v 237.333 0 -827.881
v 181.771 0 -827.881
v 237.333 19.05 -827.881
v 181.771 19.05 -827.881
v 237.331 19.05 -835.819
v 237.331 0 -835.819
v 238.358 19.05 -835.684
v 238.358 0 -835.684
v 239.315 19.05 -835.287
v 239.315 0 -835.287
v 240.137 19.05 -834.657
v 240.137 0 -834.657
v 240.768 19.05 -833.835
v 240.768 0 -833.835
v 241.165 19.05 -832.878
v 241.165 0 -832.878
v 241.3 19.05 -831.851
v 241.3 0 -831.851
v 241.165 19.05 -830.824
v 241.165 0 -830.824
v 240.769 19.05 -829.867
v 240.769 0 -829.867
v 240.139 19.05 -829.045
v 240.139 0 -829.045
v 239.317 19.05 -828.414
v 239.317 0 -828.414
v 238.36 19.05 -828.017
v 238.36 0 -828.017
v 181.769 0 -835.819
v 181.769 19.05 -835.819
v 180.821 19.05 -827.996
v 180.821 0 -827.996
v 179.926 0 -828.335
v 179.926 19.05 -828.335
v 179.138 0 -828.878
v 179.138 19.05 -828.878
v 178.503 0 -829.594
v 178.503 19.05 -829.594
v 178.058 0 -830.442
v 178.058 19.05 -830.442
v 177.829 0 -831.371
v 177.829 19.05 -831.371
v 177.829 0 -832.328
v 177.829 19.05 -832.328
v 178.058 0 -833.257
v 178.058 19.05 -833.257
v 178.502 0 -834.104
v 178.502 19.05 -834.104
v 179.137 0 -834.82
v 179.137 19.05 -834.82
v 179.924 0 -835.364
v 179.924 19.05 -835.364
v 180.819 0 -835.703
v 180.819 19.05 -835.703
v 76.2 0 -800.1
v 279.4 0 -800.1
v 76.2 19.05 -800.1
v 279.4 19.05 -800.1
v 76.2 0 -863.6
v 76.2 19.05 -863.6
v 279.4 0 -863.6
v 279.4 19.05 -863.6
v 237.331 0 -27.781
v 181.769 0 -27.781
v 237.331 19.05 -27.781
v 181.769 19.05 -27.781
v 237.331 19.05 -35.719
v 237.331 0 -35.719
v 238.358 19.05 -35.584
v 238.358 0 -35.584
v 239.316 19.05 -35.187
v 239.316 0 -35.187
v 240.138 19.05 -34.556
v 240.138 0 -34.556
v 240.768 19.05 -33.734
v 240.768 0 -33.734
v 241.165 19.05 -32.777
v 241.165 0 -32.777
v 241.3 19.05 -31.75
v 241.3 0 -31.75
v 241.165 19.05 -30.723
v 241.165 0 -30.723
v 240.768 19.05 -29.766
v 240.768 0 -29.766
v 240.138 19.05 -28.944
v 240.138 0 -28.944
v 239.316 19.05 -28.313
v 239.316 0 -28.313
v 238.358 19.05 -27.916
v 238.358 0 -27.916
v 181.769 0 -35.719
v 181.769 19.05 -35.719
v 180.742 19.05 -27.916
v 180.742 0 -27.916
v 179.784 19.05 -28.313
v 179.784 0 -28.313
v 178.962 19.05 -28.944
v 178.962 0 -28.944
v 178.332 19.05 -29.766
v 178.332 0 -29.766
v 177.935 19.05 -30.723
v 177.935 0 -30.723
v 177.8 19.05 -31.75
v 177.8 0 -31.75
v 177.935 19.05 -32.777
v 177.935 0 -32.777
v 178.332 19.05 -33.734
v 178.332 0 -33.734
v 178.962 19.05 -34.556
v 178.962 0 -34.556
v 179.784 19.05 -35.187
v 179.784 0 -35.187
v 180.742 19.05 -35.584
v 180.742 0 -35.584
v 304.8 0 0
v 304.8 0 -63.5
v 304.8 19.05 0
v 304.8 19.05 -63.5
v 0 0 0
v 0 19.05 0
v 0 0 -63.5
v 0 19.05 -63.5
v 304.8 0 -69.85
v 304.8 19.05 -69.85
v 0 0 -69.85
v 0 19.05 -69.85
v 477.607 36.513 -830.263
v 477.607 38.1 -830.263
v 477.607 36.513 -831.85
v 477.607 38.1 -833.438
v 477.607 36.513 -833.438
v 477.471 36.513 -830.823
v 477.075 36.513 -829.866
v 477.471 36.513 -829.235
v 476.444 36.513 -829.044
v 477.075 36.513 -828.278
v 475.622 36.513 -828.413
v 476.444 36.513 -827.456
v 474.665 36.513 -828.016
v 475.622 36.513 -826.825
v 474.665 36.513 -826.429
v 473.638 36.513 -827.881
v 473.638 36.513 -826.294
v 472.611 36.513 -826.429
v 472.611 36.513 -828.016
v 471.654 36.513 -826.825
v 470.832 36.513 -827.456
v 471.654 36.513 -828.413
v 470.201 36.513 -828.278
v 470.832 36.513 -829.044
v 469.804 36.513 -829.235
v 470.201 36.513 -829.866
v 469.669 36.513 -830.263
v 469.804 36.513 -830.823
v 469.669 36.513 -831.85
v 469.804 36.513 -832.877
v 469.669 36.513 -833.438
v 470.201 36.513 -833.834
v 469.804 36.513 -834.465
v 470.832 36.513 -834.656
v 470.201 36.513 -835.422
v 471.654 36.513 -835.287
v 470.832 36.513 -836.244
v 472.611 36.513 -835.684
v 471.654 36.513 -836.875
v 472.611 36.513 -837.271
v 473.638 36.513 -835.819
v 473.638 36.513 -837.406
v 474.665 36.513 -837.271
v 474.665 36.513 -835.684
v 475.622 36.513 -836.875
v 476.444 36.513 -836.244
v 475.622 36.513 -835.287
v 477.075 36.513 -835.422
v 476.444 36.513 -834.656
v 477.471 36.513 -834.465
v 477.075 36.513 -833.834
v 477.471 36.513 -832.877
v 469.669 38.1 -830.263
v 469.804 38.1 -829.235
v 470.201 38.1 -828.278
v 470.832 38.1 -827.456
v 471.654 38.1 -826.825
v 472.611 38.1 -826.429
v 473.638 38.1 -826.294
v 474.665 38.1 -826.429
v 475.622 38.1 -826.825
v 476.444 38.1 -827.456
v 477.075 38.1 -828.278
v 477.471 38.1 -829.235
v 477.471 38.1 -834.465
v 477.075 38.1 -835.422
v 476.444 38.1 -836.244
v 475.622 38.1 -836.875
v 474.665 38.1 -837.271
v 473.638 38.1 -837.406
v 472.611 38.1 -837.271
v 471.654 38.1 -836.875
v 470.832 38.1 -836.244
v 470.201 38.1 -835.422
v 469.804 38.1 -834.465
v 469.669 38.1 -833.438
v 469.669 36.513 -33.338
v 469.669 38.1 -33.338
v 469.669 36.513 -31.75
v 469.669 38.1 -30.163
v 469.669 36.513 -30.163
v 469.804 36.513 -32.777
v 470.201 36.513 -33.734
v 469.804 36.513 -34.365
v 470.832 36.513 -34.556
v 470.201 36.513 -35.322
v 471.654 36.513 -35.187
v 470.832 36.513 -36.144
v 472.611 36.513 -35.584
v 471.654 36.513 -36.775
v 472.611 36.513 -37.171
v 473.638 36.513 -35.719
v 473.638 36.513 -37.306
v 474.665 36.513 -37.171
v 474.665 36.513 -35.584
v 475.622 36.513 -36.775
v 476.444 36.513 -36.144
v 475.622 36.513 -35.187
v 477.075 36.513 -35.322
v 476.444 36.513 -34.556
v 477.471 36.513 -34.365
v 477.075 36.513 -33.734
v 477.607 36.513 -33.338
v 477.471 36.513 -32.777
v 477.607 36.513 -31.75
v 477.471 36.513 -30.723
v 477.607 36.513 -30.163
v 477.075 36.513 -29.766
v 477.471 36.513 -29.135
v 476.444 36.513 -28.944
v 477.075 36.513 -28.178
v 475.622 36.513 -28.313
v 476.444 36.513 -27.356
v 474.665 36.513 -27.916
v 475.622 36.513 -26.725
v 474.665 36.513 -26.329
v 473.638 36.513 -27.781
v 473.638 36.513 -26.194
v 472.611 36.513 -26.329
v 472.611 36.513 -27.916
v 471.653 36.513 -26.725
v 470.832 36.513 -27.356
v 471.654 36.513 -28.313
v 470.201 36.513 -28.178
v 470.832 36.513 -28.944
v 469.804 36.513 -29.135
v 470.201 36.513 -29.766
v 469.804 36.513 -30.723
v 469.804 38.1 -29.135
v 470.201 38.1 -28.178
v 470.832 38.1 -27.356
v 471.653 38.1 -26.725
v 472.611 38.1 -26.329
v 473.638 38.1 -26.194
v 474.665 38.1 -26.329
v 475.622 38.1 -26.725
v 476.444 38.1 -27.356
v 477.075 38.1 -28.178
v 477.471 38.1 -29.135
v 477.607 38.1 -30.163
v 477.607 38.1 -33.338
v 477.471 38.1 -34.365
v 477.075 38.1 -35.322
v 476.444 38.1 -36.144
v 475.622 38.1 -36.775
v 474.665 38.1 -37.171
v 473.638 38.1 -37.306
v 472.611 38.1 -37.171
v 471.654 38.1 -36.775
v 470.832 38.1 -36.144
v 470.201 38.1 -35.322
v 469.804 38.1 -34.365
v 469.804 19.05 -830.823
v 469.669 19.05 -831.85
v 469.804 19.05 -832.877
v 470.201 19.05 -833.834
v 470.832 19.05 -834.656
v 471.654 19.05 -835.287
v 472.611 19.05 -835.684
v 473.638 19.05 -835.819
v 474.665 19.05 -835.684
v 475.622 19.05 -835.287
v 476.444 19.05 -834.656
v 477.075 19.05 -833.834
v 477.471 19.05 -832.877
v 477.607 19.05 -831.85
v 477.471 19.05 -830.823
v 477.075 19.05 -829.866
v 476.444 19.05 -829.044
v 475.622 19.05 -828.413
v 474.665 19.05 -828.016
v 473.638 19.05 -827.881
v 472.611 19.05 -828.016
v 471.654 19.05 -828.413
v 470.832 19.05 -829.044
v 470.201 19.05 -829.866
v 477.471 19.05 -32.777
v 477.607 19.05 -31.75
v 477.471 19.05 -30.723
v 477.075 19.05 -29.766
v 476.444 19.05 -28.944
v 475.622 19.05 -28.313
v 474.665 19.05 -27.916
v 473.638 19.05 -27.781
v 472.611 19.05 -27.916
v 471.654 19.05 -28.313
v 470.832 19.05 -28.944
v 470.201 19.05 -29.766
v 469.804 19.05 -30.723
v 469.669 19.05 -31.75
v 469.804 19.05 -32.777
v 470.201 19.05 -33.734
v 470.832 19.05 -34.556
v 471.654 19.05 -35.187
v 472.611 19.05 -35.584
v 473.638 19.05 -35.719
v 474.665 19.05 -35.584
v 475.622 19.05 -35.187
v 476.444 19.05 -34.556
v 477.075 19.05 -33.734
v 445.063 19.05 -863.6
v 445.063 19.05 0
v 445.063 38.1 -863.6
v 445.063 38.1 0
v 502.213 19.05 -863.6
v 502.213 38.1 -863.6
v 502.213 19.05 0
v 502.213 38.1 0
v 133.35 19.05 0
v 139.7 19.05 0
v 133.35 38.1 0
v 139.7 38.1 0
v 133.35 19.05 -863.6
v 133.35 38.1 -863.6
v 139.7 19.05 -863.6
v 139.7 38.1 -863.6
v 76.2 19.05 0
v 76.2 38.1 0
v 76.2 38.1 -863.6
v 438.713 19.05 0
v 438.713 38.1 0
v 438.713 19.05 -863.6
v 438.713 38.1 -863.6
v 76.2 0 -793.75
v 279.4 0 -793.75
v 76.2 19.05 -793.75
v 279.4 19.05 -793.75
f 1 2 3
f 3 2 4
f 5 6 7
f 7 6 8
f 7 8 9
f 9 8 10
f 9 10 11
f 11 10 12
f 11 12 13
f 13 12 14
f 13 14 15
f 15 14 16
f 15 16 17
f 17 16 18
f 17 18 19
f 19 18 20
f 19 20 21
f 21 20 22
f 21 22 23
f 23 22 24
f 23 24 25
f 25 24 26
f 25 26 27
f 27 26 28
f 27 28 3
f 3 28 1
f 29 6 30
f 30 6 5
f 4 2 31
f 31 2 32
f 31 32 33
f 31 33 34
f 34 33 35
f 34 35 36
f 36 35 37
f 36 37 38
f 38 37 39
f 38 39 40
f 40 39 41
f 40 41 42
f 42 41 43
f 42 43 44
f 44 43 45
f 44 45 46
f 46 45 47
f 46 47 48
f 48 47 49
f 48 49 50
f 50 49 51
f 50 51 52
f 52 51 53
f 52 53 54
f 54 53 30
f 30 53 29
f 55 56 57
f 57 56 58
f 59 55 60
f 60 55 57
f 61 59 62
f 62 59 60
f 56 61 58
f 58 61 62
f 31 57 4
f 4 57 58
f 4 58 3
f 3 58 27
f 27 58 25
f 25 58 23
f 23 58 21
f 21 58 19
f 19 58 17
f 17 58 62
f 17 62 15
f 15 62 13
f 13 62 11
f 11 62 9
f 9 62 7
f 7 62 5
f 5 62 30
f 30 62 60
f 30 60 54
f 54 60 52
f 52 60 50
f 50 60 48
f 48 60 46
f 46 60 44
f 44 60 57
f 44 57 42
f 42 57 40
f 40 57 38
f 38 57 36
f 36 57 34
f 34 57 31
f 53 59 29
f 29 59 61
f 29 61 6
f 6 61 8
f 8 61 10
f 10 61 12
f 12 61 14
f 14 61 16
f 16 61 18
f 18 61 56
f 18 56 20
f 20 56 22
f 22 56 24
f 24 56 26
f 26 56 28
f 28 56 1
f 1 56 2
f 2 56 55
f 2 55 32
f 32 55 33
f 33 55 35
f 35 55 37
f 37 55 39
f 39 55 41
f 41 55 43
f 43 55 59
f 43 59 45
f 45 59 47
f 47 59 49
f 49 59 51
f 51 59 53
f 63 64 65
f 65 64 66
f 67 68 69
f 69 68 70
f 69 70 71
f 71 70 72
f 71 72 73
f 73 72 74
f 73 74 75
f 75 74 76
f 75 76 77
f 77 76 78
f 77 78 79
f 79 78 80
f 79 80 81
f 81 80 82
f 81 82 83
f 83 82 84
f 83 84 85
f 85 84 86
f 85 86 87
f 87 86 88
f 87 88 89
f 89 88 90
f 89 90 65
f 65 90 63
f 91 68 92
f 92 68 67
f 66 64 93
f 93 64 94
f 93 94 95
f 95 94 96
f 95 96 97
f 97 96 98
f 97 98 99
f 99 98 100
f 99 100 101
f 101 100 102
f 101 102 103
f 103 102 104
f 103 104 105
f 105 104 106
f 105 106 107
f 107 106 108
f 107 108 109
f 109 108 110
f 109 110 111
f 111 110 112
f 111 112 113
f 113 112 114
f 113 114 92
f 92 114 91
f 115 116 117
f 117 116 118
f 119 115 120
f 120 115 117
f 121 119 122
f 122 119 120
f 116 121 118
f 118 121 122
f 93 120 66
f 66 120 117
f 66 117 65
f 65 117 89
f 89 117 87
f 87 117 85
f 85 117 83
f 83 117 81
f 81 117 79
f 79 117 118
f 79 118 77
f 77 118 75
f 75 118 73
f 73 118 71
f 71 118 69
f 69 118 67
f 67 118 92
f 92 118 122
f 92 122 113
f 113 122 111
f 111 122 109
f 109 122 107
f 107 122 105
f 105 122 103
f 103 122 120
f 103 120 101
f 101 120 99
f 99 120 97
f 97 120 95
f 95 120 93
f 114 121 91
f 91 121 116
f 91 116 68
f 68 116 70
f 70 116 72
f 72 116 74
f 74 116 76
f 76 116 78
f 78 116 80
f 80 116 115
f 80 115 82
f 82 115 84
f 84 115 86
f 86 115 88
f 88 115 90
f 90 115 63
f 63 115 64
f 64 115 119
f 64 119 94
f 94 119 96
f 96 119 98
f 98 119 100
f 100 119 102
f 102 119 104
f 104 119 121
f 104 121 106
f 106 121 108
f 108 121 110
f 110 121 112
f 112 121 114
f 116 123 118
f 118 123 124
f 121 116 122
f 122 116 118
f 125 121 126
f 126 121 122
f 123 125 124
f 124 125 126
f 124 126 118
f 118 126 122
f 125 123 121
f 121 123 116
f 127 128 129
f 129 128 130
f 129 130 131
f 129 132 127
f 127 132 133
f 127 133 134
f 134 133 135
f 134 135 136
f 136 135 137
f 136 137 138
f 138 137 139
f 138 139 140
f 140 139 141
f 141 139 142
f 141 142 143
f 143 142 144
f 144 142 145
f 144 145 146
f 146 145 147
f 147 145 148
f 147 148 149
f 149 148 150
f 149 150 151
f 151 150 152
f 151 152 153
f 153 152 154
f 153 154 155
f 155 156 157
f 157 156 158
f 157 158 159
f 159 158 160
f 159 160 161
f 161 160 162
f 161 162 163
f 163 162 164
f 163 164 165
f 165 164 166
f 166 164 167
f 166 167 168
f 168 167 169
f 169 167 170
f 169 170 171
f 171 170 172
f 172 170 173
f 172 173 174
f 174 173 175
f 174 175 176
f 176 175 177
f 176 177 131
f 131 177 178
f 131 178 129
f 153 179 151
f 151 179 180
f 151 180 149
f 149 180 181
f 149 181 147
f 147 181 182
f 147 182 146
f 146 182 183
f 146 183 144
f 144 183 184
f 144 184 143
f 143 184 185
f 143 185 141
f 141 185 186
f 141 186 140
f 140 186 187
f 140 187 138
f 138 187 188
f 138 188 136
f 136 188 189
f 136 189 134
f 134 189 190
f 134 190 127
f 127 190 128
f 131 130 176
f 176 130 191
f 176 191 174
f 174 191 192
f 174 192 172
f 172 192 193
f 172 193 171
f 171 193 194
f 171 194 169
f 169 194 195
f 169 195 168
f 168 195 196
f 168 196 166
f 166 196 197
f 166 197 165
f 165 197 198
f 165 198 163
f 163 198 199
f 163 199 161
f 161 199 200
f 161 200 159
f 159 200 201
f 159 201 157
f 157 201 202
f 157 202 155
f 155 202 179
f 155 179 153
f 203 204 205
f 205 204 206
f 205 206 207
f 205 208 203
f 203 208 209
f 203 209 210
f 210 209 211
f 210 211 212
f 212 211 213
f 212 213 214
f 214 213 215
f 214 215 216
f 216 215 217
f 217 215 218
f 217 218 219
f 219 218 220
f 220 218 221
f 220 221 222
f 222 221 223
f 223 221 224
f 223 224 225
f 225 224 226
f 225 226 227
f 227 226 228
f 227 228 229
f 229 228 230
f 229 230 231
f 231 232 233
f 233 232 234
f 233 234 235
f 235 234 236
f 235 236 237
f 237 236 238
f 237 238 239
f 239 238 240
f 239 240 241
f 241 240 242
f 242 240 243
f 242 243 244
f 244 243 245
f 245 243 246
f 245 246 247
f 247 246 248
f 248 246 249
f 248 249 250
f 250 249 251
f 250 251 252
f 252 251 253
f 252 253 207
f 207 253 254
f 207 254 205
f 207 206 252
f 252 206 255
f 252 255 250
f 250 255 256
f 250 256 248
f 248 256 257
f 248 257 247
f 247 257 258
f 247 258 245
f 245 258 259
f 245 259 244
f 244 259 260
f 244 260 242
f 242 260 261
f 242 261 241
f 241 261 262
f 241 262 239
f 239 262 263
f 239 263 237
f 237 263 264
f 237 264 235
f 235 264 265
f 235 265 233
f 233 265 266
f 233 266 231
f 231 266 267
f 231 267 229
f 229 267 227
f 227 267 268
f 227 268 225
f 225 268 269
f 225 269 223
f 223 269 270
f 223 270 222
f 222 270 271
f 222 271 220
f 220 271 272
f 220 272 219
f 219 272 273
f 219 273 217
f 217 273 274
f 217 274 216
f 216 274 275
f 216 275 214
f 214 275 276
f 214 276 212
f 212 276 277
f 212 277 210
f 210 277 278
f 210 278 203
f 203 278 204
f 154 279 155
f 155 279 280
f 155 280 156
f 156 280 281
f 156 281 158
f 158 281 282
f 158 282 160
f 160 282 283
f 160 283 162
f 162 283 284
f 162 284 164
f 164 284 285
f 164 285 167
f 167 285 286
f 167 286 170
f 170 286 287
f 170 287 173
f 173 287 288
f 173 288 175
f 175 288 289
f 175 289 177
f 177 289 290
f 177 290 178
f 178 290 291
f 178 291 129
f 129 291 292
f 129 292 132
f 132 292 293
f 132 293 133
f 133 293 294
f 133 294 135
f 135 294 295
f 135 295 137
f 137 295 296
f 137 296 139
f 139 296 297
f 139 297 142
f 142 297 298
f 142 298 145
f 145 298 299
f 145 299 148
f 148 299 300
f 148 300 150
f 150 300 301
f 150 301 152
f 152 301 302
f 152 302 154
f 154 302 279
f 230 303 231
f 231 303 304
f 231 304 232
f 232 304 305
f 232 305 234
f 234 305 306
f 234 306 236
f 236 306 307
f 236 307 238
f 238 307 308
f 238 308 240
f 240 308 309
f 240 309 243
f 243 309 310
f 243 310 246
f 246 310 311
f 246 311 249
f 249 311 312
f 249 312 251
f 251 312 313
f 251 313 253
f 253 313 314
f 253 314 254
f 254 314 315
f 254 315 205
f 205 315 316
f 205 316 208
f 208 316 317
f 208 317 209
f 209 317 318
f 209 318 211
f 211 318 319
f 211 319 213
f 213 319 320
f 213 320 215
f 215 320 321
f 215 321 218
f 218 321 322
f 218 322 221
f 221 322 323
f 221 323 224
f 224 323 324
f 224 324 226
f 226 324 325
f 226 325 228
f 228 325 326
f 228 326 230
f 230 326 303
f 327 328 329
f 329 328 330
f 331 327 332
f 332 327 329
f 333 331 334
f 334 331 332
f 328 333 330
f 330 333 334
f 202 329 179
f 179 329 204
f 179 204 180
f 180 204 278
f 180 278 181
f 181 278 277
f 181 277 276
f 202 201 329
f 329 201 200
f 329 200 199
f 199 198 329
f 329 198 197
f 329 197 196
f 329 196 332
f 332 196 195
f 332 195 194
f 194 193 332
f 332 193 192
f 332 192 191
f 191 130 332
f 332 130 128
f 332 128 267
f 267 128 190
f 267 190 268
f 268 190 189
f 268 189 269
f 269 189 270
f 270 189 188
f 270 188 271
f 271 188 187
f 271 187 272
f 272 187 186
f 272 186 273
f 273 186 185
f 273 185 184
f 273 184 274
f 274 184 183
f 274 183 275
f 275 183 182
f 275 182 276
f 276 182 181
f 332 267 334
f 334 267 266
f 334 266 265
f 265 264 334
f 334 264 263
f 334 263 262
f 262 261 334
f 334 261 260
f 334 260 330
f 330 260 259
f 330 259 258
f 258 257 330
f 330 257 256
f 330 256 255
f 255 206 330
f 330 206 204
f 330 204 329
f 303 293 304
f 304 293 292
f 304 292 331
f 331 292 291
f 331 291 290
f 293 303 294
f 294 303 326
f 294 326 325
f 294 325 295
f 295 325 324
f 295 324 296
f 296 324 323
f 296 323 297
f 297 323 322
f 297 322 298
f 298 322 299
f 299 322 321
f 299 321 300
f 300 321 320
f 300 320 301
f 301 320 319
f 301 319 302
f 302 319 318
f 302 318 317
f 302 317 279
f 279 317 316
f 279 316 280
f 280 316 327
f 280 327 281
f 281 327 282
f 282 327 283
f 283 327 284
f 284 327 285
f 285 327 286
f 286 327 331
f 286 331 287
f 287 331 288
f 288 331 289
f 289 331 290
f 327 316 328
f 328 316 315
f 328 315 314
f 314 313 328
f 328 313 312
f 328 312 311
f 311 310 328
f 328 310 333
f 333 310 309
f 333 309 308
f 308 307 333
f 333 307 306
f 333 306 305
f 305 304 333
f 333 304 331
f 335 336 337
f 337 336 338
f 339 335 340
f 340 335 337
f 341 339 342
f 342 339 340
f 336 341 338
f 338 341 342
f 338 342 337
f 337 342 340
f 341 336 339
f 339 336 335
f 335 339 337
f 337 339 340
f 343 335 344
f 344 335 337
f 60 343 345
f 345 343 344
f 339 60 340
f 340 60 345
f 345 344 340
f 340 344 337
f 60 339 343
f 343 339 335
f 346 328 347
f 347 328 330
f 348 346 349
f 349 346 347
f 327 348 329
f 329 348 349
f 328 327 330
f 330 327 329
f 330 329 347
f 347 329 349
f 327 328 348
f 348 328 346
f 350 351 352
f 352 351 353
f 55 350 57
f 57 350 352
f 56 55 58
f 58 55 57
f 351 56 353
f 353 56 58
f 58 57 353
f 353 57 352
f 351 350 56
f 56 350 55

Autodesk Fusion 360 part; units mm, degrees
sketch "perpendicular guides" plane through (0, 0, 0) normal (0, 1, 0) x (1, 0, 0)
  line L0 (0, 0) -> (304.8, 0)
  line L1 (304.8, 0) -> (304.8, 63.5)
  line L2 (304.8, 63.5) -> (0, 63.5)
  line L3 (0, 63.5) -> (0, 0)
  line L4 (76.2, 863.6) -> (279.4, 863.6)
  line L5 (279.4, 863.6) -> (279.4, 800.1)
  line L6 (279.4, 800.1) -> (76.2, 800.1)
  line L7 (76.2, 800.1) -> (76.2, 863.6)
  circle A0 centre (181.7687, 831.85) radius 3.9688
  circle A1 centre (237.3312, 831.85) radius 3.9688
  line L8 (76.2, 831.85) -> (279.4, 831.85) construction
  line L9 (181.7687, 835.8187) -> (237.3312, 835.8187)
  line L10 (181.7705, 827.8813) -> (237.333, 827.8813)
  line L11 (241.3, 863.6) -> (241.3, 800.1) construction
  line L12 (177.8, 863.6) -> (177.8, 800.1) construction
  line L13 (181.7687, 831.85) -> (237.3312, 831.85) construction
  line L14 (181.7687, 831.85) -> (237.3312, 831.85) construction
  circle A2 centre (181.7687, 31.75) radius 3.9688
  circle A3 centre (237.3313, 31.75) radius 3.9688
  line L15 (237.3312, 863.6) -> (237.3313, 0) construction
  line L16 (0, 31.75) -> (304.8, 31.75) construction
  line L17 (181.7687, 863.6) -> (181.7687, 0) construction
  line L18 (181.7687, 27.7812) -> (237.3313, 27.7812)
  line L19 (181.7687, 35.7187) -> (237.3313, 35.7187)
  line L20 (241.3, 63.5) -> (241.3, 0) construction
  line L21 (304.8, 63.5) -> (0, 63.5)
  line L22 (0, 63.5) -> (0, 69.85)
  line L23 (0, 69.85) -> (304.8, 69.85)
  line L24 (304.8, 69.85) -> (304.8, 63.5)
  line L25 (279.4, 800.1) -> (76.2, 800.1)
  line L26 (76.2, 800.1) -> (76.2, 793.75)
  line L27 (76.2, 793.75) -> (279.4, 793.75)
  line L28 (279.4, 793.75) -> (279.4, 800.1)
  dimension "d1" = 304.8
  dimension "d2" = 63.5
  dimension "d3" = 152.4
  dimension "d4" = 203.2
  dimension "d7" = 7.9375
  dimension "d8" = 38.1
  dimension "d9" = 101.6
  dimension "d10" = 63.5
  dimension "d11" = 6.35
  dimension "d12" = 6.35
  dimension "d17" = 863.6
extrude "Extrude1" add sketch "perpendicular guides" along normal blind 19.05 contours L4 L5 L6 L7 L25 makes body 1 in component "top perpendicular"
sketch "long stretch" plane through (0, 19.05, 0) normal (0, 1, 0) x (-1, 0, 0)
  line L0 (-279.4, -800.1) -> (-279.4, -863.6)
  line L1 (-279.4, -863.6) -> (-76.2, -863.6)
  line L2 (-76.2, -863.6) -> (-76.2, -800.1)
  line L3 (-279.4, -863.6) -> (-76.2, -863.6)
  line L4 (0, 0) -> (-304.8, 0)
  line L5 (-76.2, -863.6) -> (-177.8, -863.6) construction
  line L6 (-177.8, 0) -> (-76.2, 0) construction
  line L7 (-76.2, -863.6) -> (-133.35, -863.6)
  line L8 (-133.35, -863.6) -> (-133.35, 0)
  line L9 (-133.35, 0) -> (-76.2, 0)
  line L10 (-76.2, 0) -> (-76.2, -863.6)
  line L11 (-133.35, 0) -> (-139.7, 0)
  line L12 (-139.7, 0) -> (-139.7, -863.6)
  line L13 (-139.7, -863.6) -> (-133.35, -863.6)
  line L14 (-133.35, -863.6) -> (-133.35, 0)
  line L15 (-445.0629, -863.6) -> (-502.2129, -863.6)
  line L16 (-502.2129, -863.6) -> (-502.2129, 0)
  line L17 (-502.2129, 0) -> (-445.0629, 0)
  line L18 (-445.0629, 0) -> (-445.0629, -863.6)
  line L19 (-445.0629, -863.6) -> (-438.7129, -863.6)
  line L20 (-438.7129, -863.6) -> (-438.7129, 0)
  line L21 (-438.7129, 0) -> (-445.0629, 0)
  line L22 (-445.0629, 0) -> (-445.0629, -863.6)
  circle A0 centre (-473.6379, -831.85) radius 3.9687
  circle A1 centre (-473.6379, -31.75) radius 3.9687
  circle A2 centre (-237.3313, -31.75) radius 3.9687 construction
  circle A3 centre (-237.3312, -831.85) radius 3.9687 construction
  line L23 (-502.2129, -831.85) -> (-200.66, -831.85) construction
  line L24 (-502.2129, -31.75) -> (-213.36, -31.75) construction
  line L25 (-445.0629, -31.75) -> (-502.2129, -31.75) construction
  line L26 (-445.0629, -831.85) -> (-502.2129, -831.85) construction
  circle A4 centre (-473.6379, -833.4375) radius 3.9687
  circle A5 centre (-473.6379, -830.2625) radius 3.9687
  line L27 (-445.0629, -833.4375) -> (-502.2129, -833.4375) construction
  line L28 (-502.2129, -837.4062) -> (-439.42, -837.4062) construction
  line L29 (-445.0629, -826.2937) -> (-502.2129, -826.2937) construction
  line L30 (-502.2129, -830.2625) -> (-445.0629, -830.2625) construction
  line L31 (-473.6379, -833.4375) -> (-473.6379, -830.2625) construction
  circle A6 centre (-473.6379, -33.3375) radius 3.9687
  circle A7 centre (-473.6379, -30.1625) radius 3.9687
  line L32 (-502.2129, -30.1625) -> (-445.0629, -30.1625) construction
  line L33 (-445.0629, -33.3375) -> (-502.2129, -33.3375) construction
  line L34 (-480.1105, -33.3375) -> (-480.1105, -31.75) construction
  line L35 (-482.3649, -31.75) -> (-482.3649, -30.1625) construction
  line L36 (-445.0629, -37.3063) -> (-502.2129, -37.3063) construction
  line L37 (-445.0629, -26.1938) -> (-502.2129, -26.1938) construction
  line L38 (-469.6691, -33.3375) -> (-469.6691, -30.1625)
  line L39 (-477.6066, -33.3375) -> (-477.6066, -30.1625)
  line L40 (-469.6691, -833.4375) -> (-469.6691, -830.2625)
  line L41 (-477.6066, -833.4375) -> (-477.6066, -830.2625)
  arc A8 (-181.7687, -835.8188) -> (-181.7705, -827.8813) centre (-181.7687, -831.85) ccw
  line L42 (-181.7687, -835.8188) -> (-237.3312, -835.8188)
  arc A9 (-237.333, -827.8813) -> (-237.3312, -835.8188) centre (-237.3313, -831.85) ccw
  line L43 (-237.333, -827.8813) -> (-181.7705, -827.8813)
  line L44 (-279.4, -800.1) -> (-279.4, -863.6)
  line L45 (-279.4, -863.6) -> (-76.2, -863.6)
  line L46 (-76.2, -863.6) -> (-76.2, -800.1)
  line L47 (-76.2, -800.1) -> (-279.4, -800.1)
  dimension "d15" = 57.15
  dimension "d16" = 6.35
  dimension "d24" = 57.15
  dimension "d25" = 557.2513
  dimension "d26" = 6.35
  dimension "d35" = 11.1125
  dimension "d36" = 11.1125
extrude "Extrude1'" add sketch "perpendicular guides" along normal blind 19.05 separate body contours L0 L1 L2 L3 L21 makes body 2 in component "bottom perpendicular"
extrude "Extrude1''" add sketch "perpendicular guides" along normal blind 19.05 separate body contours L2 L21 L22 L23 L24 makes body 3 in component "bottom liner"
extrude "Extrude2" add sketch "perpendicular guides" along normal blind 19.05 separate body contours L6 L25 L26 L27 L28 makes body 4 in component "top liner"
extrude "Extrude1'''" add sketch "long stretch" along normal blind 19.05 separate body contours L1 L2 L3 L7 L8 L10 L14 L45 L46 L47 | L4 L8 L9 L10 L14 L47 makes body 5 in component "long stretch"
extrude "Extrude1''''" add sketch "long stretch" along normal blind 19.05 separate body contours L1 L3 L8 L12 L13 L14 L45 L47 | L4 L8 L11 L12 L14 L47 makes body 6 in component "long stretch runner"
extrude "Extrude1'''''" add sketch "long stretch" along normal blind 19.05 separate body contours L15 L16 L17 L18 L22 | A0 A4 L40 | A0 A5 L40 | A0 A5 | A0 A4 | A0 A5 L41 | A0 A4 L41 | A1 A6 L38 | A1 A7 L38 | A1 A7 | A1 A6 | A1 A7 L39 | A1 A6 L39 makes body 7 in component "long stretch slider"
extrude "Extrude1''''''" add sketch "long stretch" along normal blind 19.05 separate body contours L18 L19 L20 L21 L22 makes body 8 in component "long stretch slider runner"
sketch "Sketch3" plane through (0, 38.1, 0) normal (0, 1, 0) x (-1, 0, 0)
  circle A0 centre (-473.6379, -31.75) radius 3.9688
  circle A1 centre (-473.6379, -831.85) radius 3.9688
  line L0 (-445.0629, 0) -> (-502.2129, 0)
  line L1 (-502.2129, 0) -> (-502.2129, -863.6)
  line L2 (-502.2129, -863.6) -> (-445.0629, -863.6)
  line L3 (-445.0629, -863.6) -> (-445.0629, 0)
  circle A2 centre (-473.6379, -833.4375) radius 3.9687
  circle A3 centre (-473.6379, -830.2625) radius 3.9687
  line L4 (-469.6691, -833.4375) -> (-469.6691, -830.2625)
  line L5 (-477.6066, -833.4375) -> (-477.6066, -830.2625)
  circle A4 centre (-473.6379, -33.3375) radius 3.9687
  line L6 (-469.6691, -33.3375) -> (-469.6691, -30.1625)
  line L7 (-477.6066, -33.3375) -> (-477.6066, -30.1625)
  circle A5 centre (-473.6379, -30.1625) radius 3.9687
extrude "Extrude2'" cut sketch "Sketch3" against normal blind 1.5875 contours A0 A4 A5 | A0 A4 L6 | A0 L6 A5 | A0 A4 A5 | A0 A5 | A0 A4 | A0 A4 A5 | A0 A4 A5 | A0 L7 A5 | A4 A5 | A0 A4 L7 | A1 A2 A3 | A1 A2 L4 | A1 A3 L4 | A1 A2 A3 | A1 A3 | A1 A2 | A1 A2 A3 | A1 A2 A3 | A1 A3 L5 | A2 A3 | A1 A2 L5 bodies 7 in component "long stretch slider"
component "top perpendicular" placed x (1, 0, 0) y (0, 1, 0) z (0, 0, 1) at (0, 0, 0)
component "bottom perpendicular" placed x (1, 0, 0) y (0, 1, 0) z (0, 0, 1) at (0, 0, 0)
component "bottom liner" placed x (1, 0, 0) y (0, 1, 0) z (0, 0, 1) at (0, 0, 0)
component "long stretch slider" placed x (1, 0, 0) y (0, 1, 0) z (0, 0, 1) at (0, 0, 0)
component "long stretch runner" placed x (1, 0, 0) y (0, 1, 0) z (0, 0, 1) at (0, 0, 0)
component "long stretch" placed x (1, 0, 0) y (0, 1, 0) z (0, 0, 1) at (0, 0, 0)
component "long stretch slider runner" placed x (1, 0, 0) y (0, 1, 0) z (0, 0, 1) at (0, 0, 0)
component "top liner" placed x (1, 0, 0) y (0, 1, 0) z (0, 0, 1) at (0, 0, 0)
equation "d7 = ( 5 / 16 ) * 1 in"
equation "d35 = ( 7 / 16 ) * 1 in"
equation "d36 = ( 7 / 16 ) * 1 in"
equation "plywood_width = 0.75 in"
equation "d42 = plywood_width"
equation "d44 = plywood_width"
equation "d48 = plywood_width"
equation "d50 = plywood_width"
equation "d52 = plywood_width"
equation "d54 = plywood_width"
equation "d56 = plywood_width"
equation "d58 = plywood_width"
equation "d60 = ( -1 / 16 ) * 1 in"
